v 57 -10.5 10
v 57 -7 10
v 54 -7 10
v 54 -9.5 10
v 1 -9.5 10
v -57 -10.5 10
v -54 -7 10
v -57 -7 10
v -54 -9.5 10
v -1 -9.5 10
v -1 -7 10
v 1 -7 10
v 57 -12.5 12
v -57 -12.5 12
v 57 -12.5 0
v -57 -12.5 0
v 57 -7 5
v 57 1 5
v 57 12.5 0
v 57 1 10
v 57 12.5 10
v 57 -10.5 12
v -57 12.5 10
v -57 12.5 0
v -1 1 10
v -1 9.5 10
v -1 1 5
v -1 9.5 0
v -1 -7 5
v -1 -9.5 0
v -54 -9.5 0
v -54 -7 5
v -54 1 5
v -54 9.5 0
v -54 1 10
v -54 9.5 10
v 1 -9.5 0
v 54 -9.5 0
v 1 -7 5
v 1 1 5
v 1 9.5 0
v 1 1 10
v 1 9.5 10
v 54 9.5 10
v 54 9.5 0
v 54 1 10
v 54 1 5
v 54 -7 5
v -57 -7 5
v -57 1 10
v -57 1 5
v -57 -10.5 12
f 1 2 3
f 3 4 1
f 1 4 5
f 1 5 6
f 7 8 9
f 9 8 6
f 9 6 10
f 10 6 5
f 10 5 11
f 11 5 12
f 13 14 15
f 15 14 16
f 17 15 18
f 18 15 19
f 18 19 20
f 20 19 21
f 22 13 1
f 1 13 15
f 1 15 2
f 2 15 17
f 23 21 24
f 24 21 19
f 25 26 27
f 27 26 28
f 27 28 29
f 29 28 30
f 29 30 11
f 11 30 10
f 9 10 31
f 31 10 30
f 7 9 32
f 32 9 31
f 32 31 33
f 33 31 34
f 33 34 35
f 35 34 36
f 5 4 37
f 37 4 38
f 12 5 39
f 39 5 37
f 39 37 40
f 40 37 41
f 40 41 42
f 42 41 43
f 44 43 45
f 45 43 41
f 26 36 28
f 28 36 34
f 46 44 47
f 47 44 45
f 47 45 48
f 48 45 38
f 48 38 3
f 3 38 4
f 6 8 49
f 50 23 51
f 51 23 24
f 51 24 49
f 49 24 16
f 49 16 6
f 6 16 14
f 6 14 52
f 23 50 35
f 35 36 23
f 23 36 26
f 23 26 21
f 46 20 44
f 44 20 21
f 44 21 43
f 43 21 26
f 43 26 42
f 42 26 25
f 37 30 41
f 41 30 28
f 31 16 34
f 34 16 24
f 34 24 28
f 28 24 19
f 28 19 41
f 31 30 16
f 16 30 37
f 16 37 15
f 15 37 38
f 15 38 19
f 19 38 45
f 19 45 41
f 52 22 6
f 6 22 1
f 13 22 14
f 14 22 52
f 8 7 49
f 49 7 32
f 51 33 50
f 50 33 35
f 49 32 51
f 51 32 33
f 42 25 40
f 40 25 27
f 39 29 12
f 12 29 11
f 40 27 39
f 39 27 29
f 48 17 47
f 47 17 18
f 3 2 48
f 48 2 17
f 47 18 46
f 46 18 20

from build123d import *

# Parameters (mm, degrees)
SKETCH1_W           = 114
SKETCH1_H           = 25
SKETCH1_W_2         = 53
SKETCH1_H_2         = 19
BOSS_EXTRUDE1_DEPTH = 10
SKETCH2_W           = 114
SKETCH2_H           = 2
BOSS_EXTRUDE2_DEPTH = 2
SKETCH3_W           = 5
SKETCH3_H           = 8
CUT_EXTRUDE1_DEPTH  = 116.309366489


with BuildPart() as part:
    # Sketch1 → Boss-Extrude1 (new body)
    with BuildSketch(Plane.XY):
        Rectangle(SKETCH1_W, SKETCH1_H)
        with Locations((27.5, 0)):
            Rectangle(SKETCH1_W_2, SKETCH1_H_2, mode=Mode.SUBTRACT)
        with Locations((-27.5, 0)):
            Rectangle(SKETCH1_W_2, SKETCH1_H_2, mode=Mode.SUBTRACT)
    extrude(amount=BOSS_EXTRUDE1_DEPTH)

    # Sketch2 → Boss-Extrude2 (add)
    with BuildSketch(Plane.XY.offset(10)):
        with Locations((0, -11.5)):
            Rectangle(SKETCH2_W, SKETCH2_H)
    extrude(amount=BOSS_EXTRUDE2_DEPTH)

    # Sketch3 → Cut-Extrude1 (cut, through all)
    with BuildSketch(Plane.ZY.offset(57)):
        with Locations((7.5, -3)):
            Rectangle(SKETCH3_W, SKETCH3_H)
    extrude(amount=-CUT_EXTRUDE1_DEPTH, mode=Mode.SUBTRACT)


solid = part.part
